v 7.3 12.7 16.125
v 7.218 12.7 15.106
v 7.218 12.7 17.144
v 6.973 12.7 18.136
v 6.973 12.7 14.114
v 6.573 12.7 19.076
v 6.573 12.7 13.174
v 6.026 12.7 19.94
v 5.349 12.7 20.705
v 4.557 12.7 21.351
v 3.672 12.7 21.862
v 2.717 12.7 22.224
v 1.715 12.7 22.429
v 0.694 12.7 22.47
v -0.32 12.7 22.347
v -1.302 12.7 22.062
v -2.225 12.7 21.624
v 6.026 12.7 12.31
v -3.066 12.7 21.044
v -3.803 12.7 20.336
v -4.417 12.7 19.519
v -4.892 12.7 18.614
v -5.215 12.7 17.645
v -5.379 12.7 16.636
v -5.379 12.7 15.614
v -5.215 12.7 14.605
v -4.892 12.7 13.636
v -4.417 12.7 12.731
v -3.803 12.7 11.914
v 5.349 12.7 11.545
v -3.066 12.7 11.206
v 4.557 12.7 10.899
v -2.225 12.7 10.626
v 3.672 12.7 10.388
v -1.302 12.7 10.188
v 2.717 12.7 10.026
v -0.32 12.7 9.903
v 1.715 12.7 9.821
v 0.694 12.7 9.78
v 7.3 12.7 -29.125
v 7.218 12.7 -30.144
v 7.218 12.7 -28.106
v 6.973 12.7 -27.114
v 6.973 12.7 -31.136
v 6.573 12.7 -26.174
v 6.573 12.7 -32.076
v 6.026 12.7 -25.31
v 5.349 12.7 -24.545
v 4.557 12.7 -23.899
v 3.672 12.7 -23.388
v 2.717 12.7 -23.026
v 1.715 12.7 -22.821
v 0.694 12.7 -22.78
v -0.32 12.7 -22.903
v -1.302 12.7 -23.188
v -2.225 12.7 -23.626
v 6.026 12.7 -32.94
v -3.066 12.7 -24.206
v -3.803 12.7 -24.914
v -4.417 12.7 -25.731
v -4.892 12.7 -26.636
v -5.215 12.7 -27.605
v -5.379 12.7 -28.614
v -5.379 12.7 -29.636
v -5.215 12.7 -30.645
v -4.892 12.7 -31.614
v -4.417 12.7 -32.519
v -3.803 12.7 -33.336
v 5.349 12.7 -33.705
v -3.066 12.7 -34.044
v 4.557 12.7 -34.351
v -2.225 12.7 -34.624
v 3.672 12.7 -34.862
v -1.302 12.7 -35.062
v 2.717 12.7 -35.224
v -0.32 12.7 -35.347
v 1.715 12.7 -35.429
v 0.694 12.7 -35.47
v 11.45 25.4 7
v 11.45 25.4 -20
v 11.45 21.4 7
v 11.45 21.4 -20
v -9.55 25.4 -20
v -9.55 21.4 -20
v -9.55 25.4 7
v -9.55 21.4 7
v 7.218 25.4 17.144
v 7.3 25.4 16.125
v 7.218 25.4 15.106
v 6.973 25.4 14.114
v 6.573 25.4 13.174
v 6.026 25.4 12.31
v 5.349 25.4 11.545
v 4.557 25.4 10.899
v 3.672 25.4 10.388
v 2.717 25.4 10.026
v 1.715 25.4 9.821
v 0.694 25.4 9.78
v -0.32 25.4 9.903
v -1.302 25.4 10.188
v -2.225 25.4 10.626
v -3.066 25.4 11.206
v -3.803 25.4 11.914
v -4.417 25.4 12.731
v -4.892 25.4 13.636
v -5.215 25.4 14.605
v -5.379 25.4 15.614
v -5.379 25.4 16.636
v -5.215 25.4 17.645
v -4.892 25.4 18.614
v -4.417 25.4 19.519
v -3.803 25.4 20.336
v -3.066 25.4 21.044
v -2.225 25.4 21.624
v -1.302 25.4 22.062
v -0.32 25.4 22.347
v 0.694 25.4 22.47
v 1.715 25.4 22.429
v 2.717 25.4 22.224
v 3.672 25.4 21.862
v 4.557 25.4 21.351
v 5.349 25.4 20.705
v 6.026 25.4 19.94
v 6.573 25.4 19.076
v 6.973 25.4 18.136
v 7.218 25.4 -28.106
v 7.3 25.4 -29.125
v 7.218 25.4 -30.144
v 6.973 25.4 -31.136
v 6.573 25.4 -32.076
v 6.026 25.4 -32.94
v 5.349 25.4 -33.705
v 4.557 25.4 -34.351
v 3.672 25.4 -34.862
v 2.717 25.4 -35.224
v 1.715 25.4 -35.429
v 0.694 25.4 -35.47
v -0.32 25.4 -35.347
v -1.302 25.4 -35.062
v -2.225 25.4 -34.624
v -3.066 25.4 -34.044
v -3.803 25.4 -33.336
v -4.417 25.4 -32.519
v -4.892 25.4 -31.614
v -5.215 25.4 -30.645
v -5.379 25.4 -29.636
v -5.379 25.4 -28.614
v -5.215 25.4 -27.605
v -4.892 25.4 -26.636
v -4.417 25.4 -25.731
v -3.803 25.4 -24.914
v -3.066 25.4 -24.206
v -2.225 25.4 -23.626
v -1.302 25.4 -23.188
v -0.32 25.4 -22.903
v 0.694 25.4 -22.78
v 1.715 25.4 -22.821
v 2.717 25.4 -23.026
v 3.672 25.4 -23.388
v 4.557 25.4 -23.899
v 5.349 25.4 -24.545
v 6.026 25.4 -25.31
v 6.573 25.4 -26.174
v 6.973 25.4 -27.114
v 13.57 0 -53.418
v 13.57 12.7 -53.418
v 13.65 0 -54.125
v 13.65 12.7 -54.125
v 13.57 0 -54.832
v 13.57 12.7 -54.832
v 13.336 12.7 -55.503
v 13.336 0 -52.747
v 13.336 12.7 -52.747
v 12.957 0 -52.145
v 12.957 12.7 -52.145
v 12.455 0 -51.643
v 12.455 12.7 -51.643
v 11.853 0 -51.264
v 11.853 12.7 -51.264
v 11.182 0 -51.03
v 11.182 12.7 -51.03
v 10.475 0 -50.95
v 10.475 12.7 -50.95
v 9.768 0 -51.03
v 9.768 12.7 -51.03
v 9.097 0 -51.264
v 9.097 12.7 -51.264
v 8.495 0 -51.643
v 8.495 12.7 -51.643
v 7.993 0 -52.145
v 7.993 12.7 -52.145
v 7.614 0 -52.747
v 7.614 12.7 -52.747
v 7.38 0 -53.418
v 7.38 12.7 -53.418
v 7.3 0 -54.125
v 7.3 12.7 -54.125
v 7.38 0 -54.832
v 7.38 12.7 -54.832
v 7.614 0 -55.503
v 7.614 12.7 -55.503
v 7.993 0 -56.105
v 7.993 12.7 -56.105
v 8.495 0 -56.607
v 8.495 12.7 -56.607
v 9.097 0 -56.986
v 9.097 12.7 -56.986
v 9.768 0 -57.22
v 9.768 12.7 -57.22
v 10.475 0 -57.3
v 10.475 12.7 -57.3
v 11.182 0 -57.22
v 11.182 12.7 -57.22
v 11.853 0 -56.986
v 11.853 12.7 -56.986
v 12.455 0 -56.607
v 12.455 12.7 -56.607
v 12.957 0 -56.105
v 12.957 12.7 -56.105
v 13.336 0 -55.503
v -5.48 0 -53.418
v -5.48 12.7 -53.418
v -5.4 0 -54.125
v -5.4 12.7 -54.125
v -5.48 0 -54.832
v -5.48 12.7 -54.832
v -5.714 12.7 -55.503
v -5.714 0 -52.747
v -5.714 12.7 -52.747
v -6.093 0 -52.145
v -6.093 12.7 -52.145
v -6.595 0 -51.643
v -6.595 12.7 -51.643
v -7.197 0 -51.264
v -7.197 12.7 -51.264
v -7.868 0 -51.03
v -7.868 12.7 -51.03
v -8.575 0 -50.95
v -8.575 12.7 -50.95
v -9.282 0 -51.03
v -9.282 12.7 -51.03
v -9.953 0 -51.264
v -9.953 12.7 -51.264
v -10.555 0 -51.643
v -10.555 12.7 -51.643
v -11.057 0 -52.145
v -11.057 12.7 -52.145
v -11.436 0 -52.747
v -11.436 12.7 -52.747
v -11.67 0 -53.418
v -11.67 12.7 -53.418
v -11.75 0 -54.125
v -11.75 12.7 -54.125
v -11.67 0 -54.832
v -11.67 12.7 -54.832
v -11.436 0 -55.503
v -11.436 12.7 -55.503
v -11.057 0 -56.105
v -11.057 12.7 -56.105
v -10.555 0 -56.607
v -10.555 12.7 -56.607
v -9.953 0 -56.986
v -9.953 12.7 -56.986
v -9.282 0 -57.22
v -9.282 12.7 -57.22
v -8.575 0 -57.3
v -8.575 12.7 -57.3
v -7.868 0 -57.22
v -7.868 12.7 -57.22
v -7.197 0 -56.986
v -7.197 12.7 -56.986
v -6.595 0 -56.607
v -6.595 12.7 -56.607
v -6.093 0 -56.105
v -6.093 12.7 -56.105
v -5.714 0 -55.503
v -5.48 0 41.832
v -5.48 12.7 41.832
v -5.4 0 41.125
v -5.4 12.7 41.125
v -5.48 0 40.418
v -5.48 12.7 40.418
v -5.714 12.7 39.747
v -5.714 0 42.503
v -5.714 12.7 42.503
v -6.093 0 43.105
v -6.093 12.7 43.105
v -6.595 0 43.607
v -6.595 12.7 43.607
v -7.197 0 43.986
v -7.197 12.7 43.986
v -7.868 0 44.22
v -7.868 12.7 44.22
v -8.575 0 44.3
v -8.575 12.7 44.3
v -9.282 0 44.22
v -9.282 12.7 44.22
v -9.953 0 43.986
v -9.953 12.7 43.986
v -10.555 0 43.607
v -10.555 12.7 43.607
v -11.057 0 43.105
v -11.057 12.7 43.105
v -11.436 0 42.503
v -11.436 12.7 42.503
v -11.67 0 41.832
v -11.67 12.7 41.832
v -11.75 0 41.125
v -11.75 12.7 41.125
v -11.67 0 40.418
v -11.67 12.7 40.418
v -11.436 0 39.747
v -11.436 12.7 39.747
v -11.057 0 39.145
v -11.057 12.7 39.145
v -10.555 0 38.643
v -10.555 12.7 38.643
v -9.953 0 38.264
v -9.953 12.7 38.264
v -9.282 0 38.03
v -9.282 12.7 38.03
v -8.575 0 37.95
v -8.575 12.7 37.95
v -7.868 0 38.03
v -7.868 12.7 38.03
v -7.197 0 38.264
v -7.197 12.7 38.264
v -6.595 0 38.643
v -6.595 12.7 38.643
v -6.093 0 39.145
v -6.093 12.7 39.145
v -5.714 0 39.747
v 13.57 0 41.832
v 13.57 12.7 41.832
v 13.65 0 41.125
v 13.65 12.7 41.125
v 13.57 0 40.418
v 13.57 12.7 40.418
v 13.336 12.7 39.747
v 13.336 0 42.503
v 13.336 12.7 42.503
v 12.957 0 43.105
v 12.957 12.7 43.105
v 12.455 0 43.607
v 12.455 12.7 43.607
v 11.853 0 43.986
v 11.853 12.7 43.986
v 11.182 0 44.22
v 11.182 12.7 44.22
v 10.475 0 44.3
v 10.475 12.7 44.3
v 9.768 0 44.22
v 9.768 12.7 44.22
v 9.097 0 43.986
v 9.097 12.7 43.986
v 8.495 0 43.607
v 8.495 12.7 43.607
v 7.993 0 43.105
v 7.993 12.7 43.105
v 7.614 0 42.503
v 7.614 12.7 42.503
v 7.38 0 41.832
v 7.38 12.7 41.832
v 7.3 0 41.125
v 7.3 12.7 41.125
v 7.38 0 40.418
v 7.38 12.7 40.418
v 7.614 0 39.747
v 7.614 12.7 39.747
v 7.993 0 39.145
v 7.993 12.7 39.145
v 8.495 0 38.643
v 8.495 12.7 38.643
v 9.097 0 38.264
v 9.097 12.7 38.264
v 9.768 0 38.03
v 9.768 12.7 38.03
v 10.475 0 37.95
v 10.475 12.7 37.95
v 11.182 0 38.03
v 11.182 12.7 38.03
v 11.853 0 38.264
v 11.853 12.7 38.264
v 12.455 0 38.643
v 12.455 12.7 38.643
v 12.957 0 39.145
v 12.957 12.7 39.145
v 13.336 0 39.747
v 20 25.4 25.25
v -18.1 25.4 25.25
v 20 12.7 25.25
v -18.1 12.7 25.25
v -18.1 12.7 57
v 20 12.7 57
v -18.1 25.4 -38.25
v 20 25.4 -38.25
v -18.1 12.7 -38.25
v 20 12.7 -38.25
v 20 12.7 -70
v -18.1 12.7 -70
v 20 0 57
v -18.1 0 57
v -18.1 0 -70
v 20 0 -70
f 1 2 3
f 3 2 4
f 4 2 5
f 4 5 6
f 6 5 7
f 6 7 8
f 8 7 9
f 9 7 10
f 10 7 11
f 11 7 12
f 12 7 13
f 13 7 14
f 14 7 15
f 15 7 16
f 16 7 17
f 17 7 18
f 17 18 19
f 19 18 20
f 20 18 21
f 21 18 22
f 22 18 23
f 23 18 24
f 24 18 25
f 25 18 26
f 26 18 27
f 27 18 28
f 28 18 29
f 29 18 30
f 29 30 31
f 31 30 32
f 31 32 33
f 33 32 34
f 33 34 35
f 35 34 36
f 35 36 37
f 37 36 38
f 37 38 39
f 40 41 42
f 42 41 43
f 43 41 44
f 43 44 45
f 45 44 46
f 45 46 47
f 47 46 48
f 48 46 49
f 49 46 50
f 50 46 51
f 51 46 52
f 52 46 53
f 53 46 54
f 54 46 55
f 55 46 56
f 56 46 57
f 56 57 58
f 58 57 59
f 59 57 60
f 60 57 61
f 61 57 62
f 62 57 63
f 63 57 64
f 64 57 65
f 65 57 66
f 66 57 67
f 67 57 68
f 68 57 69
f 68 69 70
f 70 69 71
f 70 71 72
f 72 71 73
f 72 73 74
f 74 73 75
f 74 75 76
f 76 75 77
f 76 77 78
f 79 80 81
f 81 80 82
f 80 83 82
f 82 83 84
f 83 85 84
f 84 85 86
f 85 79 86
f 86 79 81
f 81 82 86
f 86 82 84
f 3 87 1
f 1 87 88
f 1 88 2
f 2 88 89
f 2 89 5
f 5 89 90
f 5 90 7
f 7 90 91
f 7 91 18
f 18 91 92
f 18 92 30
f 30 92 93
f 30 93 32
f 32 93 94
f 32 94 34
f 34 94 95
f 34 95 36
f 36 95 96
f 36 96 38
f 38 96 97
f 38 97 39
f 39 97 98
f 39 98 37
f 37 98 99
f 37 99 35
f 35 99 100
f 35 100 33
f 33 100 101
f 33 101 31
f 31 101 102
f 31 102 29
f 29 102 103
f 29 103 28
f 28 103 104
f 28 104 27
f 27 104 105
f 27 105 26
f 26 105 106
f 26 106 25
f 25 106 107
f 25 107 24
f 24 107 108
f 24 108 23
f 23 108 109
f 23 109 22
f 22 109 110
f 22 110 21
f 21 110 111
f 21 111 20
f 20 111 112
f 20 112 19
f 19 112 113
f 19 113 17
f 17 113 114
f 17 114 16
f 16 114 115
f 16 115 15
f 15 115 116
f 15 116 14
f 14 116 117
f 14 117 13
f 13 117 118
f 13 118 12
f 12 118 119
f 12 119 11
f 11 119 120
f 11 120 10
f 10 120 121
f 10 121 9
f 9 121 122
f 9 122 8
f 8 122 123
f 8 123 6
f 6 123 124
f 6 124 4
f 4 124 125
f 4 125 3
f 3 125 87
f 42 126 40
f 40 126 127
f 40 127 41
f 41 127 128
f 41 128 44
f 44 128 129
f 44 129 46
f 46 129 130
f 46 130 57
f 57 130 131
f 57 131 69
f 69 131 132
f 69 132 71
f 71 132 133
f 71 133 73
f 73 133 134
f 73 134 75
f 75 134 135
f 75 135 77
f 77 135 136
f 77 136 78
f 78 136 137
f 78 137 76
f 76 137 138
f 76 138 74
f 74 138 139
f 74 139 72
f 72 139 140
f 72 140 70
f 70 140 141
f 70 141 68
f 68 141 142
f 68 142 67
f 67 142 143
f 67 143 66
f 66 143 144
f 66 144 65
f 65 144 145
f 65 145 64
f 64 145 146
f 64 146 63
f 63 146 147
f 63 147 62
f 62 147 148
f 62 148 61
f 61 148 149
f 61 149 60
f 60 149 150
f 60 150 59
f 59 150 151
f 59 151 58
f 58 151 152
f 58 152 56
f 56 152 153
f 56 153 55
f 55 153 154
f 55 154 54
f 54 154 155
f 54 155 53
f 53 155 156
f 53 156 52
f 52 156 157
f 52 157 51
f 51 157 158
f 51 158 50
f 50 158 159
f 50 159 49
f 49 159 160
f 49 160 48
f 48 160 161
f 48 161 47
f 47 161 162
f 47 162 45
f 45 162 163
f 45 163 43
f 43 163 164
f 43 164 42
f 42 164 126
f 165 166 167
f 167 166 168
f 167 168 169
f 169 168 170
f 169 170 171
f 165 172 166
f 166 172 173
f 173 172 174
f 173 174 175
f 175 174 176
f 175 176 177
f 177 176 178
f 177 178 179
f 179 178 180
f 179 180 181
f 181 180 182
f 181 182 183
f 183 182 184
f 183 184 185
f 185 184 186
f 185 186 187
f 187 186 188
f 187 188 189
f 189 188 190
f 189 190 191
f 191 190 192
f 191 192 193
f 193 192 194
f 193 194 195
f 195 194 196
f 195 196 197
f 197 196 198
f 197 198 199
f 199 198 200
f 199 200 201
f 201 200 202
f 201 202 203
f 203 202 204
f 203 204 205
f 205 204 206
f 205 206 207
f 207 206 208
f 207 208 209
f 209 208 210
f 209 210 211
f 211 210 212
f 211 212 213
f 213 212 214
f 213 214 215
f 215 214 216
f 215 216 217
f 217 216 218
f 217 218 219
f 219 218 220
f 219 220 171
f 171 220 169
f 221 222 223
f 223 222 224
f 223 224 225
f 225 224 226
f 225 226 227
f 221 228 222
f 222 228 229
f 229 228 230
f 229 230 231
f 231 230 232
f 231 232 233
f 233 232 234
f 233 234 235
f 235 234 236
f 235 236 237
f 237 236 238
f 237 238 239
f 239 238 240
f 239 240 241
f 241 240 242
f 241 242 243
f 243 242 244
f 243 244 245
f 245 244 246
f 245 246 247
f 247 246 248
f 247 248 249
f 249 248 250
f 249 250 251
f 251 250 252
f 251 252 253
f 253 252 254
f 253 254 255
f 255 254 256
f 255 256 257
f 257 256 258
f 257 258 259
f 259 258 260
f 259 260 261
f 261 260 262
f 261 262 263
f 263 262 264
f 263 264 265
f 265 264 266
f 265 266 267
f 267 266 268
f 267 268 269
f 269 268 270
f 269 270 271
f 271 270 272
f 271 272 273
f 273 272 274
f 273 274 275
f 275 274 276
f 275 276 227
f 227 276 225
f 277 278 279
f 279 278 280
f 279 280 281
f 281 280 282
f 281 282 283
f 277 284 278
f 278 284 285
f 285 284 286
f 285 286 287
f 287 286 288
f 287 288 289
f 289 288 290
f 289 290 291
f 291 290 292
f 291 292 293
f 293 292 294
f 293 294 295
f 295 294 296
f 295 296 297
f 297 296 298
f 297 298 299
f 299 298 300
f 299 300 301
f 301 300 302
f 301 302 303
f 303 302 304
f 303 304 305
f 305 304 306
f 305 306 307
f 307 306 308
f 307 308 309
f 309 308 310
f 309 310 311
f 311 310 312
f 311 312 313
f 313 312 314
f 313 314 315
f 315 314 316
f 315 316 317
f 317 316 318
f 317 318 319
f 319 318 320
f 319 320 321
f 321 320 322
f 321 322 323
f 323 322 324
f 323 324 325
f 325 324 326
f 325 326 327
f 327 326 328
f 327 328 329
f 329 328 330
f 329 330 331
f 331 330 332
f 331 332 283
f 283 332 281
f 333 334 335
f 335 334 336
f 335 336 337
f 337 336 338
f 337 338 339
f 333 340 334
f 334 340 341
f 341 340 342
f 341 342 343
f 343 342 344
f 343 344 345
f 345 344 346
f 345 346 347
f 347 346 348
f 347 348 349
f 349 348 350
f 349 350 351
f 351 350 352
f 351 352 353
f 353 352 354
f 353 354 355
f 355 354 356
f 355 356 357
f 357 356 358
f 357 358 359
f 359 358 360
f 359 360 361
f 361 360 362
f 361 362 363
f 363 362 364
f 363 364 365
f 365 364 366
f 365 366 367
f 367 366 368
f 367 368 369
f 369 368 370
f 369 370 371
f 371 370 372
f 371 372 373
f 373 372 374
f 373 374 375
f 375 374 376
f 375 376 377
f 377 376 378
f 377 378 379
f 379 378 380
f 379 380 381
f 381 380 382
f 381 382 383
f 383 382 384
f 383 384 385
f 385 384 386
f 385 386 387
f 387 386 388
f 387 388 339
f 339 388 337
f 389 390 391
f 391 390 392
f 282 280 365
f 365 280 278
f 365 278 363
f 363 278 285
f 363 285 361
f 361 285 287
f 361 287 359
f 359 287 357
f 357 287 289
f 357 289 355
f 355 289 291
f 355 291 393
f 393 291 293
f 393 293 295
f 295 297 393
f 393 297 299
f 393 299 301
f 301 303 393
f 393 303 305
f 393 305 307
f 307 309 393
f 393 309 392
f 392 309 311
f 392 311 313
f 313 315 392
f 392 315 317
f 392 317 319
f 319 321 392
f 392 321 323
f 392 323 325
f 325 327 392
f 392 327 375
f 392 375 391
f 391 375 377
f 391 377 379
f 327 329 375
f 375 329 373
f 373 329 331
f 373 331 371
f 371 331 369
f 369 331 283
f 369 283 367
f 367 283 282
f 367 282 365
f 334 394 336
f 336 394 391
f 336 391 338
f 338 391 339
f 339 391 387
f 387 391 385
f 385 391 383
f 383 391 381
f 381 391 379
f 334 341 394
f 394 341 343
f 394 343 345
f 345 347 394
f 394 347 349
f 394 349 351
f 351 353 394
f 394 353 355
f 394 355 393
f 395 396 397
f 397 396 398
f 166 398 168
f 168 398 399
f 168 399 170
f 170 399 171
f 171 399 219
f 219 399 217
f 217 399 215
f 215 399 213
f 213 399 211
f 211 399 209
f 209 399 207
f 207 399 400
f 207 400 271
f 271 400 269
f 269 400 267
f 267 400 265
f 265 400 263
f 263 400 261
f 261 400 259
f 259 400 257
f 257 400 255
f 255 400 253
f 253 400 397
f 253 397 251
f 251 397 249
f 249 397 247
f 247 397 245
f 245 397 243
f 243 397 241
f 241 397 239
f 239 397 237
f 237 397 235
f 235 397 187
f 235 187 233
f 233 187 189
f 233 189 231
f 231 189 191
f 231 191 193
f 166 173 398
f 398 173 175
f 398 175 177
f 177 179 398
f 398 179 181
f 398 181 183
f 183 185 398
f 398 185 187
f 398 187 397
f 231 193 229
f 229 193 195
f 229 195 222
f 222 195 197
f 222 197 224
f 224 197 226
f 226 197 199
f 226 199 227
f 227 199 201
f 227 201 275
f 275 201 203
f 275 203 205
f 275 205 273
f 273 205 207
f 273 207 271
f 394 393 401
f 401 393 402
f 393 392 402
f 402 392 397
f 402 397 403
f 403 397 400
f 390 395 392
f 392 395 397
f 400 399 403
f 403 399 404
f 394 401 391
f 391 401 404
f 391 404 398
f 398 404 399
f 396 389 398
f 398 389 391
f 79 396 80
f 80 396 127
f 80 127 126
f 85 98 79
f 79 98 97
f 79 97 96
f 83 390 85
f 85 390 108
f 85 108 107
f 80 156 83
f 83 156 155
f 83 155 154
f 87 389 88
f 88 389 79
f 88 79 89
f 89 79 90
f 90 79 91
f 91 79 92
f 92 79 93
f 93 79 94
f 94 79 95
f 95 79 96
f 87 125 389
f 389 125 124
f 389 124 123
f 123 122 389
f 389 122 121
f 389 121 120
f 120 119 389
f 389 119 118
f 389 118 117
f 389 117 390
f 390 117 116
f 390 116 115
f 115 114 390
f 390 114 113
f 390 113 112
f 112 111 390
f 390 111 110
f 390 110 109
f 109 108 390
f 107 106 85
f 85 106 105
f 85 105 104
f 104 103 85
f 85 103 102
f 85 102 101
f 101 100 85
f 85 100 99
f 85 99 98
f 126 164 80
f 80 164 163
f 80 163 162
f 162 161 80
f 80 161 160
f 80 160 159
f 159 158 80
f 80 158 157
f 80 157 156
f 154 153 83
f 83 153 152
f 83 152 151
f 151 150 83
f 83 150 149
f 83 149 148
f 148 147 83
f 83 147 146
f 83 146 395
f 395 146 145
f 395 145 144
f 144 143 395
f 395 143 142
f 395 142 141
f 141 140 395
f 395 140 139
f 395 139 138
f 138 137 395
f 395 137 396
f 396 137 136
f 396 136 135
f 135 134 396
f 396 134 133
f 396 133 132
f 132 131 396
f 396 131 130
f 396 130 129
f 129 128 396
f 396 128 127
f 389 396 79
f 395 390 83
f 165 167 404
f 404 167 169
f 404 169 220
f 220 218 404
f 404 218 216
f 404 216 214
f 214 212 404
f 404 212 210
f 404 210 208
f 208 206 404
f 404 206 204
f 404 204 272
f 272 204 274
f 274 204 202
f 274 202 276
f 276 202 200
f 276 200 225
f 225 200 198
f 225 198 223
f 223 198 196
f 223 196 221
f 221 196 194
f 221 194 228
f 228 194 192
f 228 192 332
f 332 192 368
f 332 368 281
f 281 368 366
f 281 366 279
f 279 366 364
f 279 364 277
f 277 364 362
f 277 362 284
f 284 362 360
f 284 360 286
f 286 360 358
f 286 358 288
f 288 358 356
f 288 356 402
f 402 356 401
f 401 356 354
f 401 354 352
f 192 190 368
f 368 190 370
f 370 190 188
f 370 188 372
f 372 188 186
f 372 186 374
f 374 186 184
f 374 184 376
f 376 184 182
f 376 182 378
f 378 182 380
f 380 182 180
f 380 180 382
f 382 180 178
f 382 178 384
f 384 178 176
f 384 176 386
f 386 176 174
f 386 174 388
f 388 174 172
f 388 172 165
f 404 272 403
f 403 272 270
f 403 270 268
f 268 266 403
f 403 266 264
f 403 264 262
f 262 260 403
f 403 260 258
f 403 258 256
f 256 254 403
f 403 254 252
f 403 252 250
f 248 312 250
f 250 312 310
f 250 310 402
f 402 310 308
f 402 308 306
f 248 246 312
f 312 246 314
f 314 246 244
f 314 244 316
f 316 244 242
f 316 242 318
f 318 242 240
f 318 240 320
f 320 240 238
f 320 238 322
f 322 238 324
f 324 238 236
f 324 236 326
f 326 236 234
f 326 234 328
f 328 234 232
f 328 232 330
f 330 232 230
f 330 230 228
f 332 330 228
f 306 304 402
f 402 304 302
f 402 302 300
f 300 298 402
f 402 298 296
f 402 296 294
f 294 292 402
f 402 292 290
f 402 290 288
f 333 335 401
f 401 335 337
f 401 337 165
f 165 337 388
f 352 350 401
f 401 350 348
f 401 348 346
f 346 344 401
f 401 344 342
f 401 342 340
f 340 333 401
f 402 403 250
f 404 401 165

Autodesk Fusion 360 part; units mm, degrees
sketch "Sketch1" plane through (0, 0, 0) normal (0, 1, 0) x (1, 0, 0)
  line L0 (-18.1, 70) -> (20, 70)
  line L1 (20, 70) -> (20, -57)
  line L2 (20, -57) -> (-18.1, -57)
  line L3 (-18.1, -57) -> (-18.1, 70)
  dimension "d1" = 127
  dimension "d2" = 38.1
extrude "Extrude1" add sketch "Sketch1" along normal blind 25.4
sketch "Sketch2" plane through (0, 25.4, 0) normal (0, 1, 0) x (-1, 0, 0)
  line L0 (18.1, 57) -> (-20, 57)
  line L1 (-20, 57) -> (-20, -70)
  line L2 (-20, -70) -> (18.1, -70)
  line L3 (18.1, -70) -> (18.1, 57)
  line L4 (18.1, 57) -> (-20, 57)
  line L5 (-20, 57) -> (-20, 25.25)
  line L6 (-20, 25.25) -> (18.1, 25.25)
  line L7 (18.1, 25.25) -> (18.1, 57)
  line L8 (18.1, -70) -> (-20, -70)
  line L9 (-20, -70) -> (-20, -38.25)
  line L10 (-20, -38.25) -> (18.1, -38.25)
  line L11 (18.1, -38.25) -> (18.1, -70)
  dimension "d5" = 31.75
  dimension "d6" = 31.75
extrude "Extrude2" cut sketch "Sketch2" against normal blind 12.7 contours L0 L1 L3 L4 L5 L6 L7 | L1 L2 L3 L8 L9 L10 L11
sketch "Sketch3" plane through (0, 12.7, 0) normal (0, 1, 0) x (-1, 0, 0)
  line L0 (18.1, 25.25) -> (18.1, 57)
  line L1 (18.1, 57) -> (-20, 57)
  line L2 (-20, 57) -> (-20, 25.25)
  line L3 (-20, 25.25) -> (18.1, 25.25)
  circle A0 centre (8.575, 41.125) radius 3.175
  circle A1 centre (-10.475, 41.125) radius 3.175
  dimension "d9" = 6.35
  dimension "d10" = 15.875
  dimension "d12" = 6.35
  dimension "d13" = 15.875
  dimension "d15" = 19.05
  dimension "d16" = 9.525
extrude "Extrude3" cut sketch "Sketch3" against normal blind 30 contours A0 | A1
sketch "Sketch4" plane through (0, 12.7, 0) normal (0, 1, 0) x (-1, 0, 0)
  line L0 (18.1, -38.25) -> (-20, -38.25)
  line L1 (-20, -38.25) -> (-20, -70)
  line L2 (-20, -70) -> (18.1, -70)
  line L3 (18.1, -70) -> (18.1, -38.25)
sketch "Sketch5" plane through (0, 12.7, 0) normal (0, 1, 0) x (-1, 0, 0)
  circle A0 centre (-10.475, -54.125) radius 3.175
  circle A1 centre (8.575, -54.125) radius 3.175
  line L0 (-20, -38.25) -> (-20, -70)
  line L1 (-20, -70) -> (18.1, -70)
  dimension "d19" = 6.35
  dimension "d20" = 6.35
  dimension "d21" = 9.525
  dimension "d22" = 19.05
  dimension "d23" = 15.875
  dimension "d24" = 15.875
extrude "Extrude4" cut sketch "Sketch5" against normal blind 40
sketch "Sketch6" plane through (0, 25.4, 0) normal (0, 1, 0) x (-1, 0, 0)
  line L0 (18.1, 25.25) -> (-20, 25.25)
  line L1 (-20, 25.25) -> (-20, -38.25)
  line L2 (-20, -38.25) -> (18.1, -38.25)
  line L3 (18.1, -38.25) -> (18.1, 25.25)
  line L4 (9.55, -20) -> (-11.45, -20)
  line L5 (-11.45, -20) -> (-11.45, 7)
  line L6 (-11.45, 7) -> (9.55, 7)
  line L7 (9.55, 7) -> (9.55, -20)
  circle A0 centre (-0.95, 16.125) radius 6.35
  circle A1 centre (-0.95, -29.125) radius 6.35
  dimension "d27" = 21
  dimension "d28" = 27
  dimension "d29" = 18.25
  dimension "d30" = 8.55
  dimension "d31" = 12.7
  dimension "d32" = 9.125
  dimension "d33" = 19.05
  dimension "d34" = 12.7
  dimension "d35" = 9.125
  dimension "d36" = 19.05
extrude "Extrude5" cut sketch "Sketch6" against normal blind 4 contours L4 L5 L6 L7 | A0 | A1
sketch "Sketch7" plane through (0, 25.4, 0) normal (0, 1, 0) x (-1, 0, 0)
  line L0 (-11.45, -20) -> (-11.45, 7)
  line L1 (-11.45, 7) -> (9.55, 7)
  line L2 (9.55, 7) -> (9.55, -20)
  line L3 (9.55, -20) -> (-11.45, -20)
  circle A0 centre (-0.95, 16.125) radius 6.35
  circle A1 centre (-0.95, -29.125) radius 6.35
  line L4 (18.1, 25.25) -> (-20, 25.25)
  line L5 (-20, 25.25) -> (-20, -38.25)
  line L6 (-20, -38.25) -> (18.1, -38.25)
  line L7 (18.1, -38.25) -> (18.1, 25.25)
  circle A2 centre (-0.95, -29.125) radius 6.35
  circle A3 centre (-0.95, 16.125) radius 6.35
  dimension "d39" = 12.7
  dimension "d40" = 12.7
extrude "Extrude6" cut sketch "Sketch7" against normal blind 12.7 contours A0 A3 | A1 A2
